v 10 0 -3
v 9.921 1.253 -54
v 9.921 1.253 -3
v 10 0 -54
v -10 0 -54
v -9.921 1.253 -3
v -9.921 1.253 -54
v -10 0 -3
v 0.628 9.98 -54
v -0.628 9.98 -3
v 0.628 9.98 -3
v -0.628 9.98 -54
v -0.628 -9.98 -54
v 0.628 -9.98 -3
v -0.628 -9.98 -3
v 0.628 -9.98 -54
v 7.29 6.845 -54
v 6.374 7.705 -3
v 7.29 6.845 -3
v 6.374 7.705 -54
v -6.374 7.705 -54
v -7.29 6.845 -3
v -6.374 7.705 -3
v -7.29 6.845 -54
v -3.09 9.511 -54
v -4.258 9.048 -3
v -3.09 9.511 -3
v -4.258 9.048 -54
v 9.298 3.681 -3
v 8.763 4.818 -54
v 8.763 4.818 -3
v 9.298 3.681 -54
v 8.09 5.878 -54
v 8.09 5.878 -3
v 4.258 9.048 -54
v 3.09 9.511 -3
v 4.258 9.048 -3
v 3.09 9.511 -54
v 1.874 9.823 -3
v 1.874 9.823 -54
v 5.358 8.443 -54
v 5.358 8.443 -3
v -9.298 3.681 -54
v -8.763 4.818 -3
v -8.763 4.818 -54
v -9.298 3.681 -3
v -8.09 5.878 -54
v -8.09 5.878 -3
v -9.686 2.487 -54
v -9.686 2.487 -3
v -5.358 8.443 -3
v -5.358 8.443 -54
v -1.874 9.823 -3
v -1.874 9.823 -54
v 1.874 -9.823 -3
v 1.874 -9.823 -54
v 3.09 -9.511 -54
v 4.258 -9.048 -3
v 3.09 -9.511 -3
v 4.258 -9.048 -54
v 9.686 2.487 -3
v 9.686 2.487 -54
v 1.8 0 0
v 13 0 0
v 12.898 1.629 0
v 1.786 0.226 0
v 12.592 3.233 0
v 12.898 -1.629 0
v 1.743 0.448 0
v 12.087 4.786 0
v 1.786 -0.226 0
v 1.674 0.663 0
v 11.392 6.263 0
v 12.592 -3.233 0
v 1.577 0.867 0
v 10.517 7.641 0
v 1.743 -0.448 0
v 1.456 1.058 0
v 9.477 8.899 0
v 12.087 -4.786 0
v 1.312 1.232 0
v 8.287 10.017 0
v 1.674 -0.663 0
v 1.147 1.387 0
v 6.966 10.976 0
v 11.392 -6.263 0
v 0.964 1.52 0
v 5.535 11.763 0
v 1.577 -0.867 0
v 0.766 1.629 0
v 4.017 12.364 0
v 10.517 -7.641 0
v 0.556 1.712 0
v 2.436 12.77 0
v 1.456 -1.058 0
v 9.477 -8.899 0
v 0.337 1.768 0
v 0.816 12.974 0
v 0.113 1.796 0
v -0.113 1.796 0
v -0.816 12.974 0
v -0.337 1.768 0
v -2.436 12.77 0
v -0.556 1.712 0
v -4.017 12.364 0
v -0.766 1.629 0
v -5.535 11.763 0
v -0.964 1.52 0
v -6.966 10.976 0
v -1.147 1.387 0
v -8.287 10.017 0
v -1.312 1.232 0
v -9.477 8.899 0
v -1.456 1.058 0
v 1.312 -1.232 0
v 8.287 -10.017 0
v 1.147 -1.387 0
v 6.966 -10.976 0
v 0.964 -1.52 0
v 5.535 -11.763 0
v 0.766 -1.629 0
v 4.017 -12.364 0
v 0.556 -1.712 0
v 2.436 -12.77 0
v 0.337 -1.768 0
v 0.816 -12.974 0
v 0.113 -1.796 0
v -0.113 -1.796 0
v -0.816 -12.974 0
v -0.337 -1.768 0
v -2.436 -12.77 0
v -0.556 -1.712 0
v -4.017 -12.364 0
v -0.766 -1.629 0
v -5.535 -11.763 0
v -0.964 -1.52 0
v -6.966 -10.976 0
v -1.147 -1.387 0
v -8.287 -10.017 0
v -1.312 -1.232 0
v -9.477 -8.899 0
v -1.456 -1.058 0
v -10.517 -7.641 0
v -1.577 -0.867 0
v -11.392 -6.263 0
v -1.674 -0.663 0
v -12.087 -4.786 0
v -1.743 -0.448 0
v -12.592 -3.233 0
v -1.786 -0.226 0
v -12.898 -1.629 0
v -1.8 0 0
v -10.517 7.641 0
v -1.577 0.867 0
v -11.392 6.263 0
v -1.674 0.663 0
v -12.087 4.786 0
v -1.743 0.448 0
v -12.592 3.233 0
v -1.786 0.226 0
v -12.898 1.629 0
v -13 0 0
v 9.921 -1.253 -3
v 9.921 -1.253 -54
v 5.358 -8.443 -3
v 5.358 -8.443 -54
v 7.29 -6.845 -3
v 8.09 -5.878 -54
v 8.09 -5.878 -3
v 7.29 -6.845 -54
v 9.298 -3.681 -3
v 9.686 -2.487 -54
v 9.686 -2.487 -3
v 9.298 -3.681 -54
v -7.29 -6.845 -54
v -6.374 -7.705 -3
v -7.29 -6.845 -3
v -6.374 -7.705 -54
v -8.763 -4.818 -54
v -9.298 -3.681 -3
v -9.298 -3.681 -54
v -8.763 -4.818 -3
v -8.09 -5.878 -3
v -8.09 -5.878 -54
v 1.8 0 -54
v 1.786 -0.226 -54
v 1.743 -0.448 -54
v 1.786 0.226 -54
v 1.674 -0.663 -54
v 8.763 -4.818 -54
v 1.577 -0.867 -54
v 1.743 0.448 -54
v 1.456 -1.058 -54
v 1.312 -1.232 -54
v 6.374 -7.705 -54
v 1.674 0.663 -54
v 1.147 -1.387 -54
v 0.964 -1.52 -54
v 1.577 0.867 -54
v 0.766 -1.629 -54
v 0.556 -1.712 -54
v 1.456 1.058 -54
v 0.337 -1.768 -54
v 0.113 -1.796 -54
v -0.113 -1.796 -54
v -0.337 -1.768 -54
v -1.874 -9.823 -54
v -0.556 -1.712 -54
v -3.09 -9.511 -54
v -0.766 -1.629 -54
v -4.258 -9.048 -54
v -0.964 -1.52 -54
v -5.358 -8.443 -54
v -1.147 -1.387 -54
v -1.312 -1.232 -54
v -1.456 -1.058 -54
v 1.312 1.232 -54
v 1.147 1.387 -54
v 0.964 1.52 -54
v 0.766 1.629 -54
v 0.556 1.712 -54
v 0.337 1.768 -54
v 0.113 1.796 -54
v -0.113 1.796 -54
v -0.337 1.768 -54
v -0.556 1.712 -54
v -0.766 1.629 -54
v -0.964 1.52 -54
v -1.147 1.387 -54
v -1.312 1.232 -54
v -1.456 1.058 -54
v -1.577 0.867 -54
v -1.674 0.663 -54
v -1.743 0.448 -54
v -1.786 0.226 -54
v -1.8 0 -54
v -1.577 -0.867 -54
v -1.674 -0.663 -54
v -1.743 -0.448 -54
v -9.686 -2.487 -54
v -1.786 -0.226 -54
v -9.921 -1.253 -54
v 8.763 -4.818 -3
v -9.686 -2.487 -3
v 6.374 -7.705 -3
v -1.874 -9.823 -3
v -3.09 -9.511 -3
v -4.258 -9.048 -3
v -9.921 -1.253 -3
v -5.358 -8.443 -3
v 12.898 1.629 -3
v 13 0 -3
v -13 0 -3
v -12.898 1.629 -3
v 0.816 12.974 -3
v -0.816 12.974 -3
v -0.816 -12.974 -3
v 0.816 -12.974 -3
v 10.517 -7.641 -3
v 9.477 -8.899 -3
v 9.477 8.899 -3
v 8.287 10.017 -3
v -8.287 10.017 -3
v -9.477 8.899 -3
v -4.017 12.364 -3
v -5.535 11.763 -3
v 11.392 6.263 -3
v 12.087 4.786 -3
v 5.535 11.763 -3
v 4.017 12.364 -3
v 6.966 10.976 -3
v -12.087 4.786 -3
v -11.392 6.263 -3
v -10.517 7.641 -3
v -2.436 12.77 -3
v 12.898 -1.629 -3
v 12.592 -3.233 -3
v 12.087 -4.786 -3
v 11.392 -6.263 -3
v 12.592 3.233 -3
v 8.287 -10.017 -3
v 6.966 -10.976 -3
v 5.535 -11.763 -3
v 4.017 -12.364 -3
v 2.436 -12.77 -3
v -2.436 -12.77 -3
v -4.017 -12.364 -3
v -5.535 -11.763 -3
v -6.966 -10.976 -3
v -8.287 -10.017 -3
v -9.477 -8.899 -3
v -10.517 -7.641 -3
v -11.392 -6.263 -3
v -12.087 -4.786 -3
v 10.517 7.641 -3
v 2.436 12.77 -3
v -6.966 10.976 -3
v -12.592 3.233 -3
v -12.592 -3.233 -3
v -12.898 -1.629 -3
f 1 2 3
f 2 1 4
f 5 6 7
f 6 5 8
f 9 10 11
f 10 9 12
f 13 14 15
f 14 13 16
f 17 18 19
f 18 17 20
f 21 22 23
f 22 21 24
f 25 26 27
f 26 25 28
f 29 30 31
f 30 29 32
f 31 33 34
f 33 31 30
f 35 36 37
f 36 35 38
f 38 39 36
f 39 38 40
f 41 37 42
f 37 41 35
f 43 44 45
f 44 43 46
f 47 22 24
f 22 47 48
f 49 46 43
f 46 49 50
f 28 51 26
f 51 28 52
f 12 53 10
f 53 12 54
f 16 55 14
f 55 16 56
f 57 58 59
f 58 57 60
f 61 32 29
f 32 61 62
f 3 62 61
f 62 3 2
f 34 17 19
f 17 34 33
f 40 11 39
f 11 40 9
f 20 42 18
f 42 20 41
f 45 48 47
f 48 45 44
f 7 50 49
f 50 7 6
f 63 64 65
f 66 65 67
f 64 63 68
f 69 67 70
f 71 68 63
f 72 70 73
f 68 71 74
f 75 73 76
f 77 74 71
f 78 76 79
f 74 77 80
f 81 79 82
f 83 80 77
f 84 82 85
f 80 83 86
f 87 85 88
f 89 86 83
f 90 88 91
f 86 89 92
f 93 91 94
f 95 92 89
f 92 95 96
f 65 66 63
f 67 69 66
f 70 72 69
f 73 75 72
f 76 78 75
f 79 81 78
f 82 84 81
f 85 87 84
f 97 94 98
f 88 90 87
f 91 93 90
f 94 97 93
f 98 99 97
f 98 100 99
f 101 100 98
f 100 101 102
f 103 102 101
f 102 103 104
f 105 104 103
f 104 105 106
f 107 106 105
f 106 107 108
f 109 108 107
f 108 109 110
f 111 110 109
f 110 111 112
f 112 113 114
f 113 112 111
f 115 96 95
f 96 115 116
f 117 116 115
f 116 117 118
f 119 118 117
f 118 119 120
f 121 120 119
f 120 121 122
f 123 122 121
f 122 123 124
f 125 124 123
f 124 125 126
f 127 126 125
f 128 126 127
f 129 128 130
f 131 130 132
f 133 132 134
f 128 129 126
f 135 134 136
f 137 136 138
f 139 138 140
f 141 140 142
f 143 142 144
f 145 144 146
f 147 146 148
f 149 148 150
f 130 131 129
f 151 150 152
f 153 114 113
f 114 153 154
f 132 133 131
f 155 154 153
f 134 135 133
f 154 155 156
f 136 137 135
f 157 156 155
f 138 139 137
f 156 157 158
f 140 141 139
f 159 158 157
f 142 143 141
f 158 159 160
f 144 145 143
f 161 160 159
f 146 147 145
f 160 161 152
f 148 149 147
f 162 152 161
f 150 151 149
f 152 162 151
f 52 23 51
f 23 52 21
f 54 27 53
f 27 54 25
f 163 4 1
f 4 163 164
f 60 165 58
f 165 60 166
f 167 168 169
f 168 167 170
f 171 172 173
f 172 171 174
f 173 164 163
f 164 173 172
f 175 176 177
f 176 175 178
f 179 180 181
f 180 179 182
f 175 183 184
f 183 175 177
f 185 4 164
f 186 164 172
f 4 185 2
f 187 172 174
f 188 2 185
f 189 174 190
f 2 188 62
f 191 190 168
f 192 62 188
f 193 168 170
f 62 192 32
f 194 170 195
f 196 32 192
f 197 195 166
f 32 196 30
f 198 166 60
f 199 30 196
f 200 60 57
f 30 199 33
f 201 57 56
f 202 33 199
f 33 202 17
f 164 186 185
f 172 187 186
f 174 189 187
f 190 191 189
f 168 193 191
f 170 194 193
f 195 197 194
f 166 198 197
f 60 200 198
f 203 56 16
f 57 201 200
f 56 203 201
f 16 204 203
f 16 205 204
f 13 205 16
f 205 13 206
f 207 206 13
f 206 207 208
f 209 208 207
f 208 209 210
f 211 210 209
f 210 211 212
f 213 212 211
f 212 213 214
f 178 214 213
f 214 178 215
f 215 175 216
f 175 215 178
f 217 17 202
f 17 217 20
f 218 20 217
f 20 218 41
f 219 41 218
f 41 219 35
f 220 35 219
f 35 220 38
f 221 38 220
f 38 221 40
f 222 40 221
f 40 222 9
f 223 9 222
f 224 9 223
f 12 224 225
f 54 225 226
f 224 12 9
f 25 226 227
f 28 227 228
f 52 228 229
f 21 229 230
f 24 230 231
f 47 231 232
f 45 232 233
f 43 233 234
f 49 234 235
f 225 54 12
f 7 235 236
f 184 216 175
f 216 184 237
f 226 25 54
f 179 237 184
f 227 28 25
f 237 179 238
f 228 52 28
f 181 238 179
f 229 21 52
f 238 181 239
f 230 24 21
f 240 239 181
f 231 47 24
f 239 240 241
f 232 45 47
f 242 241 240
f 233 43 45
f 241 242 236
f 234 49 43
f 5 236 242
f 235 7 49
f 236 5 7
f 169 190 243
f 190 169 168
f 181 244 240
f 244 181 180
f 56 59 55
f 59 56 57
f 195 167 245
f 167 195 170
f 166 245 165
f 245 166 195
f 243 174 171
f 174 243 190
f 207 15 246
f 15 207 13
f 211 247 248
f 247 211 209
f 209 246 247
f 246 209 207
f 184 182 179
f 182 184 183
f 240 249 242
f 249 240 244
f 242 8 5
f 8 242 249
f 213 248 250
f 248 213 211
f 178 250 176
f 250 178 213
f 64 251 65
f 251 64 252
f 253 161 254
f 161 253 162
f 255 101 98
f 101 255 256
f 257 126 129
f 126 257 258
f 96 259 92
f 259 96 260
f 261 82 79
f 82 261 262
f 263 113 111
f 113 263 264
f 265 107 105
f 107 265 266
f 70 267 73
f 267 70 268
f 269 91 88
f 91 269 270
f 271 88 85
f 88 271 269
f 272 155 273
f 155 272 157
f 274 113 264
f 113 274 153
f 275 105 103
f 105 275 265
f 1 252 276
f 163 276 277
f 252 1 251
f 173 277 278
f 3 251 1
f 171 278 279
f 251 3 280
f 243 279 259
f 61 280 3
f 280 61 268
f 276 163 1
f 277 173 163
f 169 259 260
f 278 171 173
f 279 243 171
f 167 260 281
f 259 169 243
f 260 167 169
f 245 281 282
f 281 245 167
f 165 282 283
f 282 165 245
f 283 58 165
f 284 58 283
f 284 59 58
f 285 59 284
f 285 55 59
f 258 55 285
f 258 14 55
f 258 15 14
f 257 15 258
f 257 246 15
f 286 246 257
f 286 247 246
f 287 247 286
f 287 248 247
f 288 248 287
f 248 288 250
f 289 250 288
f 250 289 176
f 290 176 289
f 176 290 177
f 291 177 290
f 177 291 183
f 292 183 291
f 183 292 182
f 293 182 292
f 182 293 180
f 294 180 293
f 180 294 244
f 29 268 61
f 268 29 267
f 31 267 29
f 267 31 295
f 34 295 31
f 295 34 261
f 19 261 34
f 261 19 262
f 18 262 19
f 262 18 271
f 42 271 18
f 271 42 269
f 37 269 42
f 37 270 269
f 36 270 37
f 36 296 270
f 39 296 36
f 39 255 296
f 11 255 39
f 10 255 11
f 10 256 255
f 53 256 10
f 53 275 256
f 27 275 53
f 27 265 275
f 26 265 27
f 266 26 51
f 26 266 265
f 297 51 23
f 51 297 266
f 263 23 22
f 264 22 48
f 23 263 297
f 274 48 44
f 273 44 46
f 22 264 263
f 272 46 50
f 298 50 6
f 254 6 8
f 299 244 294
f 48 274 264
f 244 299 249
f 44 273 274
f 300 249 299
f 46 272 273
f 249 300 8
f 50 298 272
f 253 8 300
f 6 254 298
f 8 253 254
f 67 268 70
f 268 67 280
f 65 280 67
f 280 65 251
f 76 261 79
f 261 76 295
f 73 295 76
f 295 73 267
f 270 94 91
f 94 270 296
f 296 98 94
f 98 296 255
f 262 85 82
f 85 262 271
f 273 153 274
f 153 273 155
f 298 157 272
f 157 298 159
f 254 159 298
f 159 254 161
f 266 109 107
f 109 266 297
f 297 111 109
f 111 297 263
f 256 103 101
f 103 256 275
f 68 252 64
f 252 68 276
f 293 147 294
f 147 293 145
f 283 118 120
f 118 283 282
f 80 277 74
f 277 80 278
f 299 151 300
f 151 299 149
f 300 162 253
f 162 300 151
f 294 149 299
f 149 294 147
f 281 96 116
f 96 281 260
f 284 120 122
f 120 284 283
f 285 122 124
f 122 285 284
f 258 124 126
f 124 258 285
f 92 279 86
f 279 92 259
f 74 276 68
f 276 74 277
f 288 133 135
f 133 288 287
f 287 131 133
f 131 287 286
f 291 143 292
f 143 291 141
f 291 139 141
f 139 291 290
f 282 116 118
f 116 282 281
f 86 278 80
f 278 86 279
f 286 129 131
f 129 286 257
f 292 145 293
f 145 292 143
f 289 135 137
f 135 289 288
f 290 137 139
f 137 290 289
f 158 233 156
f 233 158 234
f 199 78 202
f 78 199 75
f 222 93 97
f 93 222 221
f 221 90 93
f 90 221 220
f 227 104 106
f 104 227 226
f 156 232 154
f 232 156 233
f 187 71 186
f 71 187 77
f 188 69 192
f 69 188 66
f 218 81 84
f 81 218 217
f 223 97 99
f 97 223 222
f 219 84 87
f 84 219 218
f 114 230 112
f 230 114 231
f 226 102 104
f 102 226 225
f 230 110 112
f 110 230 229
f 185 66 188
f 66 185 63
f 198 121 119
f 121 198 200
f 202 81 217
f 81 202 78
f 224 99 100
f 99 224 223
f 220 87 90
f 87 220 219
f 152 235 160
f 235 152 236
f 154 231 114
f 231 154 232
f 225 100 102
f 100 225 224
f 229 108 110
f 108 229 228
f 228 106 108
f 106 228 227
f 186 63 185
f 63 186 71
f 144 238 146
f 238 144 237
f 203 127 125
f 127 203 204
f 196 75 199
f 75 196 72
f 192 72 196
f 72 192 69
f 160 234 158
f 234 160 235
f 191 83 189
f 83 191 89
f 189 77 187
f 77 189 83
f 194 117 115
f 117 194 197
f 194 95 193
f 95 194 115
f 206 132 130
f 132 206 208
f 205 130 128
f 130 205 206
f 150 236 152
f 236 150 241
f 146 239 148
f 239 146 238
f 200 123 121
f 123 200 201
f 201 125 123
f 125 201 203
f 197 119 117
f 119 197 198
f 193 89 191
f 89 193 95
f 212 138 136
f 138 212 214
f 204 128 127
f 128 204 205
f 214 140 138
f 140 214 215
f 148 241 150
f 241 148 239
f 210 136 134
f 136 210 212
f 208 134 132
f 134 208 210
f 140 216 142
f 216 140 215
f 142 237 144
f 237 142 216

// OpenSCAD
$fn = 50;


difference() {
	union() {
		translate(v = [0, 0, -54.0000000000]) {
			cylinder(h = 54, r = 10.0000000000);
		}
		translate(v = [0, 0, -3.0000000000]) {
			cylinder(h = 3, r = 13.0000000000);
		}
	}
	union() {
		#translate(v = [0, 0, -54]) {
			cylinder(h = 54, r = 1.8000000000);
		}
	}
}
